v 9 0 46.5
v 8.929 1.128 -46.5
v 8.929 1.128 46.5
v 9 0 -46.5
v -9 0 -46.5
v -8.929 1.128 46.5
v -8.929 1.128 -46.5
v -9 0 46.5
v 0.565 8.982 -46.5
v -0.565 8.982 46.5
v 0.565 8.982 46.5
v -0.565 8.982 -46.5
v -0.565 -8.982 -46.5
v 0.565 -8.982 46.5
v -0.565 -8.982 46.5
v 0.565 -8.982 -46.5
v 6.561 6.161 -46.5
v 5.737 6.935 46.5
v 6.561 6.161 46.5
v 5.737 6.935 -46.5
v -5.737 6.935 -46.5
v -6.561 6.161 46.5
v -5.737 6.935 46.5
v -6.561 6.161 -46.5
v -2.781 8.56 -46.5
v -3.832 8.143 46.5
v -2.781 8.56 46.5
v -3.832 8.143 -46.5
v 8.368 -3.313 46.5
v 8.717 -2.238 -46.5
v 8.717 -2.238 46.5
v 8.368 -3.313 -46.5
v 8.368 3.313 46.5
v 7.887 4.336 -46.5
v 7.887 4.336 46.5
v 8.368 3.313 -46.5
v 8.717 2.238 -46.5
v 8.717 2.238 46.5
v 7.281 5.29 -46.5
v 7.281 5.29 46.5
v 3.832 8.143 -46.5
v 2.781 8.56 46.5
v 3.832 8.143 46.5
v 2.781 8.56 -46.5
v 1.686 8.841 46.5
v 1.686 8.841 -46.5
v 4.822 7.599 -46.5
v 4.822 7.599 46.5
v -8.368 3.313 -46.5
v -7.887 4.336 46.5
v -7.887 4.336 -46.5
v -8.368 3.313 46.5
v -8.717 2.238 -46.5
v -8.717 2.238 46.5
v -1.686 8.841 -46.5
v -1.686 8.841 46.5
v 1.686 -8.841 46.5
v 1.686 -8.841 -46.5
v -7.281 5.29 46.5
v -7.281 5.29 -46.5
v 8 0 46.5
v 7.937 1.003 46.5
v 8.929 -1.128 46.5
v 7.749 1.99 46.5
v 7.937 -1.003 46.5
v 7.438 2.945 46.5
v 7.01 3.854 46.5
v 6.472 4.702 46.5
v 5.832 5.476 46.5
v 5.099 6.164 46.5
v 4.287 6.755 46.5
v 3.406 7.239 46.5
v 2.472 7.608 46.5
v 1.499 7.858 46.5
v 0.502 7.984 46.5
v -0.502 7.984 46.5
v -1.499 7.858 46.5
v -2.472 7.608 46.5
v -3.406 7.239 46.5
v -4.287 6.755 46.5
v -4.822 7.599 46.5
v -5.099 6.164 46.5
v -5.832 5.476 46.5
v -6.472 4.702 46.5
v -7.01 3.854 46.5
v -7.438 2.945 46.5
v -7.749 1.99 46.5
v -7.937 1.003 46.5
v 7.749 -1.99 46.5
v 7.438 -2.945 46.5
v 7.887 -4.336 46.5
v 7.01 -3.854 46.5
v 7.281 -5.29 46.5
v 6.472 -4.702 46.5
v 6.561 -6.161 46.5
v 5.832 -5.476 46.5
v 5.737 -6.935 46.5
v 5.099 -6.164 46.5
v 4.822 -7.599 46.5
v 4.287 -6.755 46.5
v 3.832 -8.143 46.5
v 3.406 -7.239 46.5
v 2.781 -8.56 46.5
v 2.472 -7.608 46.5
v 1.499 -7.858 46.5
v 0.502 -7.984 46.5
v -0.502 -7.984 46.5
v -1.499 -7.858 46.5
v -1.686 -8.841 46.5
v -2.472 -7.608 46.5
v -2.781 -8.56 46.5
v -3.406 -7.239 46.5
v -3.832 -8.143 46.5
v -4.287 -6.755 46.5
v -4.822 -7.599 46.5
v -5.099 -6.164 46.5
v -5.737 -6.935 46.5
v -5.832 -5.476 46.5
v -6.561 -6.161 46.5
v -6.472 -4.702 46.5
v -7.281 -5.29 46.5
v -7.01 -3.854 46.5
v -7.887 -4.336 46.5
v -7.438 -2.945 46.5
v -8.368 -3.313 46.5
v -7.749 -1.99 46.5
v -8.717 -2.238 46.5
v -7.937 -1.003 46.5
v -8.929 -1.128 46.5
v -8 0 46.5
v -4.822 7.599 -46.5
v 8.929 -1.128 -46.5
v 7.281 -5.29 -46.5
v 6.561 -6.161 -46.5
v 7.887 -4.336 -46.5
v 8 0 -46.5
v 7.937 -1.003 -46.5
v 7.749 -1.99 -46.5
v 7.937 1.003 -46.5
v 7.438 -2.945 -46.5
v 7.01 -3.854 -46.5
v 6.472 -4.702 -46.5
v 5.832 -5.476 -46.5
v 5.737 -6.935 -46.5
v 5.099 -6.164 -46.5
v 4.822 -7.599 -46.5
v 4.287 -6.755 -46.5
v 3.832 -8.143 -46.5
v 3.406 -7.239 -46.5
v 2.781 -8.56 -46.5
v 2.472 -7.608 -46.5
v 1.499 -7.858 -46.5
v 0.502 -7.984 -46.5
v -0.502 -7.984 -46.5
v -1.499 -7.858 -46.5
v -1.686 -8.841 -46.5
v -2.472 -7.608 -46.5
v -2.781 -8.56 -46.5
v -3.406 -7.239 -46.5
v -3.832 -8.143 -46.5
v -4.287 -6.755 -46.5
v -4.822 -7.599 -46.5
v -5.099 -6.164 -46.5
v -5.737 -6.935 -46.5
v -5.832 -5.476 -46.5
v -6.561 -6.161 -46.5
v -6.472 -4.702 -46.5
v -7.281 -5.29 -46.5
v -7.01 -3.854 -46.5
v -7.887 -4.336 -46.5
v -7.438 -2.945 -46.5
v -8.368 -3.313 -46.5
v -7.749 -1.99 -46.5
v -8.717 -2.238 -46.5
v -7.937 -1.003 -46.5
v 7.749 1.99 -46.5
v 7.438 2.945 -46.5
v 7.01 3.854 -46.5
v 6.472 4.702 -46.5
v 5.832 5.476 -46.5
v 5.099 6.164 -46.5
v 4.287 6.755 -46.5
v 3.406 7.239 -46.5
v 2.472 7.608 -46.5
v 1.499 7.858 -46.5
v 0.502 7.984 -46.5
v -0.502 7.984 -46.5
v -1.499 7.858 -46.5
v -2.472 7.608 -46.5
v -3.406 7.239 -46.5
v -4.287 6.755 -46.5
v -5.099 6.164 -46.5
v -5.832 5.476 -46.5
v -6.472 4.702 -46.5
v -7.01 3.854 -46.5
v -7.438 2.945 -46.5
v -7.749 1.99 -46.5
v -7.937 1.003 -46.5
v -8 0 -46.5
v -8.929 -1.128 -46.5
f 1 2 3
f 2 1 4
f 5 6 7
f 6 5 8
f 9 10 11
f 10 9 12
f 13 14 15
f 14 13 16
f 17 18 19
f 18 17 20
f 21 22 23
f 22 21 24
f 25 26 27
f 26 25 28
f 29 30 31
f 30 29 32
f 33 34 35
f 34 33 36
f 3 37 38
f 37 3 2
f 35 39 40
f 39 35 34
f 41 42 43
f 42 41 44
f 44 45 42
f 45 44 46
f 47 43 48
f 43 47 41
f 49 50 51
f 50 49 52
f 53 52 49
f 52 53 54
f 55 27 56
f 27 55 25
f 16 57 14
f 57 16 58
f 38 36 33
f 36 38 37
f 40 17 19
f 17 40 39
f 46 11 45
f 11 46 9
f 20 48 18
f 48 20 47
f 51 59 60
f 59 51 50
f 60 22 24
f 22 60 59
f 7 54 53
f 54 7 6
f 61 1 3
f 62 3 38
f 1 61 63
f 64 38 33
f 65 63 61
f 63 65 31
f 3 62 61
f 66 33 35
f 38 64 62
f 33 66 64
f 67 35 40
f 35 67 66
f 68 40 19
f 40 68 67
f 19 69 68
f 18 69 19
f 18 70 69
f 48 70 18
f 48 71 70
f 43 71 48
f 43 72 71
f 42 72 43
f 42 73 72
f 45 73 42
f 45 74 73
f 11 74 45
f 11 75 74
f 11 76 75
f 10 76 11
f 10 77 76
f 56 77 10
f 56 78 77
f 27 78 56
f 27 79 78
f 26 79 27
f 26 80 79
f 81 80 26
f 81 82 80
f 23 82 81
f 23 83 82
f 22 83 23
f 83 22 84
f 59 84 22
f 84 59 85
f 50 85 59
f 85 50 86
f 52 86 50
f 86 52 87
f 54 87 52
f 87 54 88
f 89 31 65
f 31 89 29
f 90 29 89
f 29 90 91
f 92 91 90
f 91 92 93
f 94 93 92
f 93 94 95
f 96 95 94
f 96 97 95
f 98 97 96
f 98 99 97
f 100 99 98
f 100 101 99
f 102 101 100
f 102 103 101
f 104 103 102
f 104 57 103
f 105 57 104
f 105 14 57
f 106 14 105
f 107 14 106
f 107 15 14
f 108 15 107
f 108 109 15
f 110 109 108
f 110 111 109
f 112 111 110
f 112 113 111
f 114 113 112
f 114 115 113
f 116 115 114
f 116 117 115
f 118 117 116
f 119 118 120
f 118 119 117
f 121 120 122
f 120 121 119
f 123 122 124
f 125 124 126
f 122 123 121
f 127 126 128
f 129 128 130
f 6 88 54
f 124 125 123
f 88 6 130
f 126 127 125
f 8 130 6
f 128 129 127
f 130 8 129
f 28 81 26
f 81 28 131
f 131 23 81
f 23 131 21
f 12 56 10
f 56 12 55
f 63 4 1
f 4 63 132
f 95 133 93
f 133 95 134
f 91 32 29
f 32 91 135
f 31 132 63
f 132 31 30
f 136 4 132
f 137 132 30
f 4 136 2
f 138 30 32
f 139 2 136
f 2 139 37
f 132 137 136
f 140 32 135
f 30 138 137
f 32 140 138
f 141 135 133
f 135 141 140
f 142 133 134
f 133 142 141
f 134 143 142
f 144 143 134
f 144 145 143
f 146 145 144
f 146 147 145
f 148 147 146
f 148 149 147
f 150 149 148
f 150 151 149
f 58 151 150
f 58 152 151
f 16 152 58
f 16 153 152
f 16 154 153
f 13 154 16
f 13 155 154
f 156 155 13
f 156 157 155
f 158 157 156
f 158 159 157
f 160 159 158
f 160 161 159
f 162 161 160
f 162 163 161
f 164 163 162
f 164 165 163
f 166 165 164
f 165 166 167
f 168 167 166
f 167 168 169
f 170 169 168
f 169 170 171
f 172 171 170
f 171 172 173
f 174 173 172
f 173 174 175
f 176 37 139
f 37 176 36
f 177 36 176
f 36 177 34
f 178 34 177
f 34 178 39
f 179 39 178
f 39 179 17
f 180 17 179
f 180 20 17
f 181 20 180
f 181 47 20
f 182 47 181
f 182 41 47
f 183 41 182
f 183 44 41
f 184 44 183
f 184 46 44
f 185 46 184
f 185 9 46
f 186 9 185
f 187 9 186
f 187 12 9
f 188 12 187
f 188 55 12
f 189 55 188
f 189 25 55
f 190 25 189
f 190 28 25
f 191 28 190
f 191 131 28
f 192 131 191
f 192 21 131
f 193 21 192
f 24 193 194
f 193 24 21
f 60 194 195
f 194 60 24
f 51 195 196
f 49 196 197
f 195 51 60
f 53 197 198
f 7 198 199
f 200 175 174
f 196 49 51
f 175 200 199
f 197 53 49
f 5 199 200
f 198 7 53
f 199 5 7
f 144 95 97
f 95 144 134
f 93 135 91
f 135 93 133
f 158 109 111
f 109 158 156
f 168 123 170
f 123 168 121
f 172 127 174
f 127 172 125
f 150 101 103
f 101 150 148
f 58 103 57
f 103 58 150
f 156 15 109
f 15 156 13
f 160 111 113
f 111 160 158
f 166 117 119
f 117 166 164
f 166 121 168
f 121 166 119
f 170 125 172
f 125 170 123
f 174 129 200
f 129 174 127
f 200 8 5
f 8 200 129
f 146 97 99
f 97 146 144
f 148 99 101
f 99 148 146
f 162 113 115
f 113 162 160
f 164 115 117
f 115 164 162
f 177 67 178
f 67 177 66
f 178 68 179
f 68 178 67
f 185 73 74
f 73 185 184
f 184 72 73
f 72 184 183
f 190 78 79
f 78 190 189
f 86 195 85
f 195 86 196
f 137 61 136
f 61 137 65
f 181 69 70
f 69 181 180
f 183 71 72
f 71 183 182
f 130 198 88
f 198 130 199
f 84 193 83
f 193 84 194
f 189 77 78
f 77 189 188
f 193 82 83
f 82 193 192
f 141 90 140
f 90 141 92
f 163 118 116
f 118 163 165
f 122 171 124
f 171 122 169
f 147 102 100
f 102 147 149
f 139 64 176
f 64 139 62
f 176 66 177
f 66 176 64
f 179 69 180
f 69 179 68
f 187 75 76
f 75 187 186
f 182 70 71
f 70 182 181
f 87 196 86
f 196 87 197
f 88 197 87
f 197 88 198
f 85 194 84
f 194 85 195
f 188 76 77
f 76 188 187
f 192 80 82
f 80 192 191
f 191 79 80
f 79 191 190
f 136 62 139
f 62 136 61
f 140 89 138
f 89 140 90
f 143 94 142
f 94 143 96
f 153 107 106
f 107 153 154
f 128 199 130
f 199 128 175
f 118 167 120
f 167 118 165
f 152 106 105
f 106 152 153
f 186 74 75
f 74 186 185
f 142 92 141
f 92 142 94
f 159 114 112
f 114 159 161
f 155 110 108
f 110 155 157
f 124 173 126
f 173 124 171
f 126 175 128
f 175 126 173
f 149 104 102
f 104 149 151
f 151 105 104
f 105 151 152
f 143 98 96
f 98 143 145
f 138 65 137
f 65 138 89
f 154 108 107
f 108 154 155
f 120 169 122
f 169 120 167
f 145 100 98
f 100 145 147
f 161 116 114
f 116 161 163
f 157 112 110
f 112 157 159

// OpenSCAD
$fn = 50;


difference() {
	union() {
		translate(v = [0, 0, -46.5000000000]) {
			cylinder(h = 93, r = 9.0000000000);
		}
	}
	union() {
		translate(v = [0, 0, -100.0000000000]) {
			cylinder(h = 200, r = 8);
		}
	}
}
